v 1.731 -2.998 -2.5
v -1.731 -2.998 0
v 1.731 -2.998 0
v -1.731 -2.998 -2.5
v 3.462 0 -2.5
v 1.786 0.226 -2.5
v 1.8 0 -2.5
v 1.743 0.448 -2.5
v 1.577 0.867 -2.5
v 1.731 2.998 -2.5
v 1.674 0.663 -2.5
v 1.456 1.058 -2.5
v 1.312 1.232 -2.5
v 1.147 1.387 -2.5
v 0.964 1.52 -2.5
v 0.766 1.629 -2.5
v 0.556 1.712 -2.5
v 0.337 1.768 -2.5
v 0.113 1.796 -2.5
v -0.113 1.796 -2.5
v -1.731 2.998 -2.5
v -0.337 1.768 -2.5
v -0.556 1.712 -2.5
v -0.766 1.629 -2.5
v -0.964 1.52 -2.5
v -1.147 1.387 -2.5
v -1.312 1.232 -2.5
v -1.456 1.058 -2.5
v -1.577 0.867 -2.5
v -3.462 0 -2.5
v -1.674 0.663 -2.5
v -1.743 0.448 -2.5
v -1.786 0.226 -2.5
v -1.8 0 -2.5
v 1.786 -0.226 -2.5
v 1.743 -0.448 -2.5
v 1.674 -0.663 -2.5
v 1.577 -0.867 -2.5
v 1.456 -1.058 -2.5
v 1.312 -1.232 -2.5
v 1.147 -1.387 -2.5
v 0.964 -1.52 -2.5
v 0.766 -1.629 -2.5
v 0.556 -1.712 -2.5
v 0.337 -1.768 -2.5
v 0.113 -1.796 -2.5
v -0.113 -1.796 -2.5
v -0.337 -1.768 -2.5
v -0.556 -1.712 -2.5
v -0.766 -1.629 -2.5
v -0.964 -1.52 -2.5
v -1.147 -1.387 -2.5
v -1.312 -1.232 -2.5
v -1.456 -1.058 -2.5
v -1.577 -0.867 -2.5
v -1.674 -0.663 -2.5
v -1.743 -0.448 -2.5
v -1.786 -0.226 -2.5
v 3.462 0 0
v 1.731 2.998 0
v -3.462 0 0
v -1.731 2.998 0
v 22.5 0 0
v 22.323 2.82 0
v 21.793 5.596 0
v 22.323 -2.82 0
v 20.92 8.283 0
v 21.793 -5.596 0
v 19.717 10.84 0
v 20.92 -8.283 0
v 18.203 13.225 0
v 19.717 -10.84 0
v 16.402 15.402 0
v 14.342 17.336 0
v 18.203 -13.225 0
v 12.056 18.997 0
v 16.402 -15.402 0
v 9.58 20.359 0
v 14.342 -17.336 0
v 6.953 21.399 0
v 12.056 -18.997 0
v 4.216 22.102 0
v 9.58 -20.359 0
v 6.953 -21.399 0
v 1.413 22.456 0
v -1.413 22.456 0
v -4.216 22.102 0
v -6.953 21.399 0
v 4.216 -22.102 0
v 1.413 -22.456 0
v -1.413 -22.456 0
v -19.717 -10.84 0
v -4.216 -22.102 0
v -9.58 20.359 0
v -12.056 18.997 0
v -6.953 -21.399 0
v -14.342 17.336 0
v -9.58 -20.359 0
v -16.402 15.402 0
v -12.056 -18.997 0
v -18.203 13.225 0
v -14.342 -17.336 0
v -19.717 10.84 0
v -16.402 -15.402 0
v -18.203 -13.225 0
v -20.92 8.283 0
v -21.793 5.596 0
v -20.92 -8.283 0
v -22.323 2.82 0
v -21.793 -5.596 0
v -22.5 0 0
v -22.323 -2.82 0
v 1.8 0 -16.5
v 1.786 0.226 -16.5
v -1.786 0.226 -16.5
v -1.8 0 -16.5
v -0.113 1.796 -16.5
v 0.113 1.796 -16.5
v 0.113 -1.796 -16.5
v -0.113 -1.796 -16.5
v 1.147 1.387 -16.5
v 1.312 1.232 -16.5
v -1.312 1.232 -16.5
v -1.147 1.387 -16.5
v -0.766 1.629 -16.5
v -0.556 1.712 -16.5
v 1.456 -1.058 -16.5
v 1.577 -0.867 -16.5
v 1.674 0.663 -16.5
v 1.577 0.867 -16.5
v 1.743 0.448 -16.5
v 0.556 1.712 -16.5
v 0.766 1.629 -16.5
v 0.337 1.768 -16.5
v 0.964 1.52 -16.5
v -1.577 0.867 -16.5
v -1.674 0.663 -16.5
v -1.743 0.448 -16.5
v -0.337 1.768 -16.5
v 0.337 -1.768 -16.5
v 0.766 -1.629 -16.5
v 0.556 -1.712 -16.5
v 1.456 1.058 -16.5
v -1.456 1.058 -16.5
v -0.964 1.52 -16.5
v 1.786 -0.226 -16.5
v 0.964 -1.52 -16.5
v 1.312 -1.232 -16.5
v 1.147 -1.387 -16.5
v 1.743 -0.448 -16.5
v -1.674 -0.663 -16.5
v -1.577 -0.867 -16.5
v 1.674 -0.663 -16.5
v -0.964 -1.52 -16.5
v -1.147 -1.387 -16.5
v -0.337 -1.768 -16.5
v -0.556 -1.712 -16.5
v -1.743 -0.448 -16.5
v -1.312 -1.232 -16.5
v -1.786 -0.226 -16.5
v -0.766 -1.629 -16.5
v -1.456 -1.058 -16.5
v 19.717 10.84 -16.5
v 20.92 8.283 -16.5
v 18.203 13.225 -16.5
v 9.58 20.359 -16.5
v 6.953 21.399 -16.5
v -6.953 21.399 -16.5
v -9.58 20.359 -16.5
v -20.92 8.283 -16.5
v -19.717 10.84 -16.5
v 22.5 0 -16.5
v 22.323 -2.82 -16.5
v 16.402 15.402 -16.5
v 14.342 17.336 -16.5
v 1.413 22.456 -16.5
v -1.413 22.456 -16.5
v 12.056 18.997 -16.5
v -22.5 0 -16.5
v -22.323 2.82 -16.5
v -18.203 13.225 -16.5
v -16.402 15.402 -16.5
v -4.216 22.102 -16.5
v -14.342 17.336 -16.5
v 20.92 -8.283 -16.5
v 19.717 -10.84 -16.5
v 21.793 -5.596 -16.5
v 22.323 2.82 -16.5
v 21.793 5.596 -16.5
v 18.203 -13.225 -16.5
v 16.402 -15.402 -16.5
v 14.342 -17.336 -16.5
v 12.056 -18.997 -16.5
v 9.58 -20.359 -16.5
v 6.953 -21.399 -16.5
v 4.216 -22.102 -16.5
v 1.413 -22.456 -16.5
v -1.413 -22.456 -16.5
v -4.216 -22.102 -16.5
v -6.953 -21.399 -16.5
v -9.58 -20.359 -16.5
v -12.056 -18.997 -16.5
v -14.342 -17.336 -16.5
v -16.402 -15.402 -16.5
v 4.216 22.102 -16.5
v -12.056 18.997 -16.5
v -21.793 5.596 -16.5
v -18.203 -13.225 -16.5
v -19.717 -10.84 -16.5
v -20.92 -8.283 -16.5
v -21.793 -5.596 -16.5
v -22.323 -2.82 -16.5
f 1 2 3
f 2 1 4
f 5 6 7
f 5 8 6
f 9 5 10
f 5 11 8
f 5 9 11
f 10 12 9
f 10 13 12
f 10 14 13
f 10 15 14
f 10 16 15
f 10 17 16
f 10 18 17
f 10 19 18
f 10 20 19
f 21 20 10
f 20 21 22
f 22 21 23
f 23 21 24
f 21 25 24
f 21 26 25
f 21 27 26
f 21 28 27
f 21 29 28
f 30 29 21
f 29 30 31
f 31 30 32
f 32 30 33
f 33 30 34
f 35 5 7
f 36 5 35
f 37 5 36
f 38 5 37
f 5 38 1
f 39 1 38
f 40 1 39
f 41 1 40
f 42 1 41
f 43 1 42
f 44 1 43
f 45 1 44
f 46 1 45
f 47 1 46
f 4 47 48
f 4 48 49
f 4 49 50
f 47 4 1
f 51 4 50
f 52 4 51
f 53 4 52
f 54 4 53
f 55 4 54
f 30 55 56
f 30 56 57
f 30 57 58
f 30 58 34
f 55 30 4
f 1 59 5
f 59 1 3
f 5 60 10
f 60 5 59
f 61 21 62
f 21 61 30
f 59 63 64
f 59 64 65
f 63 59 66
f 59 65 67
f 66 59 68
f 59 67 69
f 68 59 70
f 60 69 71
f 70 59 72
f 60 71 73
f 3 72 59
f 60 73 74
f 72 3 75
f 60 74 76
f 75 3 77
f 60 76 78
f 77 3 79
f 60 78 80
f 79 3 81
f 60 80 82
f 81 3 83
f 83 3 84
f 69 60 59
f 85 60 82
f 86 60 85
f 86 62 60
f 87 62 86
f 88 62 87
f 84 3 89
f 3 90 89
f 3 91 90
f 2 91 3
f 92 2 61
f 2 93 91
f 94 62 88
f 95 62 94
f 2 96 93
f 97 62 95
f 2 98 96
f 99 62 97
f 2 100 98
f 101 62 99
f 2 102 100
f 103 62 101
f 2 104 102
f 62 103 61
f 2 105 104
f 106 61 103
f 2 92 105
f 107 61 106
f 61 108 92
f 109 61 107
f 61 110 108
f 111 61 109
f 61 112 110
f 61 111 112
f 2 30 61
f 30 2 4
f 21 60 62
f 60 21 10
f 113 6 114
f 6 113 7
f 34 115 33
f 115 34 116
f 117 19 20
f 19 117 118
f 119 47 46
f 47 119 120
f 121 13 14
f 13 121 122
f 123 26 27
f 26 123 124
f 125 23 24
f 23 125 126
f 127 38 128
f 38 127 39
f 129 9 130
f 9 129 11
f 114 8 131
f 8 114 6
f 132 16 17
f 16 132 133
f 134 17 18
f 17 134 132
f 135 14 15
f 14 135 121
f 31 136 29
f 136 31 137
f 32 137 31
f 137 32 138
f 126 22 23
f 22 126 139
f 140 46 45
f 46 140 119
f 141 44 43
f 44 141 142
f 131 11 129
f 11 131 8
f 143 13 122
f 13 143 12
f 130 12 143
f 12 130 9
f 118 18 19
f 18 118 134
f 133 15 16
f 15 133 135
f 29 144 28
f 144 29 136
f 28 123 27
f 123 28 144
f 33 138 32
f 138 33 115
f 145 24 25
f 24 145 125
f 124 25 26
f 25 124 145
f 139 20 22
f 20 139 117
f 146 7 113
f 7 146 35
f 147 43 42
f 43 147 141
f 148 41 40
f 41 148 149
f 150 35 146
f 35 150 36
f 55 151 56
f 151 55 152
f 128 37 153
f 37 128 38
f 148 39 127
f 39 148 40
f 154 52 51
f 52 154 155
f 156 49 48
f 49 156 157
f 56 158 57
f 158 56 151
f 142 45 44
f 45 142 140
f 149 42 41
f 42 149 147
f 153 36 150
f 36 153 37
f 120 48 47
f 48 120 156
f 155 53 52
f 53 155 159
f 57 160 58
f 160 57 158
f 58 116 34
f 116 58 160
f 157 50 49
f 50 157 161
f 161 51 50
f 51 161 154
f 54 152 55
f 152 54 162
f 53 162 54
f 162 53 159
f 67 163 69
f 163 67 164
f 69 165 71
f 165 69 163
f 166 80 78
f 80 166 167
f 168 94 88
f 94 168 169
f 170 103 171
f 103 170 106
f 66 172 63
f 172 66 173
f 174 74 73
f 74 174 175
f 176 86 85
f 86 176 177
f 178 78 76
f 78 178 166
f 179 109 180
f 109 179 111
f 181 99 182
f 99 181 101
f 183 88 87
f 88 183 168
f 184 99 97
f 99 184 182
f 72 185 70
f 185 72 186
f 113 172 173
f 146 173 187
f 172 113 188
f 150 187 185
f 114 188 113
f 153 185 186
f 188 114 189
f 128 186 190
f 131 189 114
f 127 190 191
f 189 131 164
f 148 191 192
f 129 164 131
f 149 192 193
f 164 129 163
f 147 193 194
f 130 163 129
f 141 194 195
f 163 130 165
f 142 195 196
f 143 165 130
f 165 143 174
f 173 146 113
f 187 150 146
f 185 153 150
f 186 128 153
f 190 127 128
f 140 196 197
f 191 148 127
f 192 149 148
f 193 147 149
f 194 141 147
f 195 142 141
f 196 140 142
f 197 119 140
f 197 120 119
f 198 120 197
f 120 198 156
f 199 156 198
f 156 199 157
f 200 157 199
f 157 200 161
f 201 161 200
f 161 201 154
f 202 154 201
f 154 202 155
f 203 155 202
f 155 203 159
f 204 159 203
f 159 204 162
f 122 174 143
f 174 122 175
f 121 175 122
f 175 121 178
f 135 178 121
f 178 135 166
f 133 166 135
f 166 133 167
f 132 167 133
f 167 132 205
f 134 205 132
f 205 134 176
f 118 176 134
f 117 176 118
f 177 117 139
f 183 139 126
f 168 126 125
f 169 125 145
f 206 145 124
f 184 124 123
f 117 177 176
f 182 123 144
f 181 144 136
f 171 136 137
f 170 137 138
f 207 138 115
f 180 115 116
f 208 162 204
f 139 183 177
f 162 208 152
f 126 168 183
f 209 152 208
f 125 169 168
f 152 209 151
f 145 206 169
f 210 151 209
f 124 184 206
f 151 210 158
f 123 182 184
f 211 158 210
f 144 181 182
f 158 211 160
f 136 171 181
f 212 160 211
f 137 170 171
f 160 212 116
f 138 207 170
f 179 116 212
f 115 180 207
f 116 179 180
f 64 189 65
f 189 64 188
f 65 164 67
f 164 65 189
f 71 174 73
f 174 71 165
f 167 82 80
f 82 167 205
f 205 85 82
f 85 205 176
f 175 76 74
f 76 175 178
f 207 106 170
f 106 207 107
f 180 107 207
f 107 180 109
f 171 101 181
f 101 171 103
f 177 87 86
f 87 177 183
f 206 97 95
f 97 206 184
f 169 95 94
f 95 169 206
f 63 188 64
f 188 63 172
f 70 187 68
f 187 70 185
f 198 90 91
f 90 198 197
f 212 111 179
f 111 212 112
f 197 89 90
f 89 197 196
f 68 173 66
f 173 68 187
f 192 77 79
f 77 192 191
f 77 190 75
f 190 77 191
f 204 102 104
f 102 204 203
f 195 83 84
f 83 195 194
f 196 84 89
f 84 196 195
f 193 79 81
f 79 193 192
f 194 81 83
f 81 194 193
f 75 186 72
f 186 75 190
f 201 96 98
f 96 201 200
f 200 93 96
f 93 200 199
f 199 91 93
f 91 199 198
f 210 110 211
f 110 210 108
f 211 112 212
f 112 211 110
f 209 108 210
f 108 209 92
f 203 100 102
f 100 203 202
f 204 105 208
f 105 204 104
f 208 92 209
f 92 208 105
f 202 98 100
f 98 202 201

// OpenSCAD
$fn = 50;

difference() {
	union() {
		translate(v = [0, 0, -16.5]) {
			cylinder(h = 16.5, r = 22.5);
		}
	}
	union() {
		translate(v = [0, 0, 0]) {
			rotate(a = [0, 0, 0]) {
				difference() {
					union() {
						translate(v = [0, 0, -2.5]) {
							linear_extrude(height = 2.5) {
								polygon(points = [[3.4619999999999997, 0.0], [1.7310000000000003, 2.9981799479017264], [-1.7309999999999992, 2.9981799479017264], [-3.4619999999999997, 4.2397272186481365e-16], [-1.7310000000000014, -2.998179947901726], [1.7309999999999977, -2.9981799479017277]]);
							}
						}
					}
					union();
				}
			}
		}
		#translate(v = [0, 0, -100.0]) {
			cylinder(h = 200, r = 1.8);
		}
	}
}
